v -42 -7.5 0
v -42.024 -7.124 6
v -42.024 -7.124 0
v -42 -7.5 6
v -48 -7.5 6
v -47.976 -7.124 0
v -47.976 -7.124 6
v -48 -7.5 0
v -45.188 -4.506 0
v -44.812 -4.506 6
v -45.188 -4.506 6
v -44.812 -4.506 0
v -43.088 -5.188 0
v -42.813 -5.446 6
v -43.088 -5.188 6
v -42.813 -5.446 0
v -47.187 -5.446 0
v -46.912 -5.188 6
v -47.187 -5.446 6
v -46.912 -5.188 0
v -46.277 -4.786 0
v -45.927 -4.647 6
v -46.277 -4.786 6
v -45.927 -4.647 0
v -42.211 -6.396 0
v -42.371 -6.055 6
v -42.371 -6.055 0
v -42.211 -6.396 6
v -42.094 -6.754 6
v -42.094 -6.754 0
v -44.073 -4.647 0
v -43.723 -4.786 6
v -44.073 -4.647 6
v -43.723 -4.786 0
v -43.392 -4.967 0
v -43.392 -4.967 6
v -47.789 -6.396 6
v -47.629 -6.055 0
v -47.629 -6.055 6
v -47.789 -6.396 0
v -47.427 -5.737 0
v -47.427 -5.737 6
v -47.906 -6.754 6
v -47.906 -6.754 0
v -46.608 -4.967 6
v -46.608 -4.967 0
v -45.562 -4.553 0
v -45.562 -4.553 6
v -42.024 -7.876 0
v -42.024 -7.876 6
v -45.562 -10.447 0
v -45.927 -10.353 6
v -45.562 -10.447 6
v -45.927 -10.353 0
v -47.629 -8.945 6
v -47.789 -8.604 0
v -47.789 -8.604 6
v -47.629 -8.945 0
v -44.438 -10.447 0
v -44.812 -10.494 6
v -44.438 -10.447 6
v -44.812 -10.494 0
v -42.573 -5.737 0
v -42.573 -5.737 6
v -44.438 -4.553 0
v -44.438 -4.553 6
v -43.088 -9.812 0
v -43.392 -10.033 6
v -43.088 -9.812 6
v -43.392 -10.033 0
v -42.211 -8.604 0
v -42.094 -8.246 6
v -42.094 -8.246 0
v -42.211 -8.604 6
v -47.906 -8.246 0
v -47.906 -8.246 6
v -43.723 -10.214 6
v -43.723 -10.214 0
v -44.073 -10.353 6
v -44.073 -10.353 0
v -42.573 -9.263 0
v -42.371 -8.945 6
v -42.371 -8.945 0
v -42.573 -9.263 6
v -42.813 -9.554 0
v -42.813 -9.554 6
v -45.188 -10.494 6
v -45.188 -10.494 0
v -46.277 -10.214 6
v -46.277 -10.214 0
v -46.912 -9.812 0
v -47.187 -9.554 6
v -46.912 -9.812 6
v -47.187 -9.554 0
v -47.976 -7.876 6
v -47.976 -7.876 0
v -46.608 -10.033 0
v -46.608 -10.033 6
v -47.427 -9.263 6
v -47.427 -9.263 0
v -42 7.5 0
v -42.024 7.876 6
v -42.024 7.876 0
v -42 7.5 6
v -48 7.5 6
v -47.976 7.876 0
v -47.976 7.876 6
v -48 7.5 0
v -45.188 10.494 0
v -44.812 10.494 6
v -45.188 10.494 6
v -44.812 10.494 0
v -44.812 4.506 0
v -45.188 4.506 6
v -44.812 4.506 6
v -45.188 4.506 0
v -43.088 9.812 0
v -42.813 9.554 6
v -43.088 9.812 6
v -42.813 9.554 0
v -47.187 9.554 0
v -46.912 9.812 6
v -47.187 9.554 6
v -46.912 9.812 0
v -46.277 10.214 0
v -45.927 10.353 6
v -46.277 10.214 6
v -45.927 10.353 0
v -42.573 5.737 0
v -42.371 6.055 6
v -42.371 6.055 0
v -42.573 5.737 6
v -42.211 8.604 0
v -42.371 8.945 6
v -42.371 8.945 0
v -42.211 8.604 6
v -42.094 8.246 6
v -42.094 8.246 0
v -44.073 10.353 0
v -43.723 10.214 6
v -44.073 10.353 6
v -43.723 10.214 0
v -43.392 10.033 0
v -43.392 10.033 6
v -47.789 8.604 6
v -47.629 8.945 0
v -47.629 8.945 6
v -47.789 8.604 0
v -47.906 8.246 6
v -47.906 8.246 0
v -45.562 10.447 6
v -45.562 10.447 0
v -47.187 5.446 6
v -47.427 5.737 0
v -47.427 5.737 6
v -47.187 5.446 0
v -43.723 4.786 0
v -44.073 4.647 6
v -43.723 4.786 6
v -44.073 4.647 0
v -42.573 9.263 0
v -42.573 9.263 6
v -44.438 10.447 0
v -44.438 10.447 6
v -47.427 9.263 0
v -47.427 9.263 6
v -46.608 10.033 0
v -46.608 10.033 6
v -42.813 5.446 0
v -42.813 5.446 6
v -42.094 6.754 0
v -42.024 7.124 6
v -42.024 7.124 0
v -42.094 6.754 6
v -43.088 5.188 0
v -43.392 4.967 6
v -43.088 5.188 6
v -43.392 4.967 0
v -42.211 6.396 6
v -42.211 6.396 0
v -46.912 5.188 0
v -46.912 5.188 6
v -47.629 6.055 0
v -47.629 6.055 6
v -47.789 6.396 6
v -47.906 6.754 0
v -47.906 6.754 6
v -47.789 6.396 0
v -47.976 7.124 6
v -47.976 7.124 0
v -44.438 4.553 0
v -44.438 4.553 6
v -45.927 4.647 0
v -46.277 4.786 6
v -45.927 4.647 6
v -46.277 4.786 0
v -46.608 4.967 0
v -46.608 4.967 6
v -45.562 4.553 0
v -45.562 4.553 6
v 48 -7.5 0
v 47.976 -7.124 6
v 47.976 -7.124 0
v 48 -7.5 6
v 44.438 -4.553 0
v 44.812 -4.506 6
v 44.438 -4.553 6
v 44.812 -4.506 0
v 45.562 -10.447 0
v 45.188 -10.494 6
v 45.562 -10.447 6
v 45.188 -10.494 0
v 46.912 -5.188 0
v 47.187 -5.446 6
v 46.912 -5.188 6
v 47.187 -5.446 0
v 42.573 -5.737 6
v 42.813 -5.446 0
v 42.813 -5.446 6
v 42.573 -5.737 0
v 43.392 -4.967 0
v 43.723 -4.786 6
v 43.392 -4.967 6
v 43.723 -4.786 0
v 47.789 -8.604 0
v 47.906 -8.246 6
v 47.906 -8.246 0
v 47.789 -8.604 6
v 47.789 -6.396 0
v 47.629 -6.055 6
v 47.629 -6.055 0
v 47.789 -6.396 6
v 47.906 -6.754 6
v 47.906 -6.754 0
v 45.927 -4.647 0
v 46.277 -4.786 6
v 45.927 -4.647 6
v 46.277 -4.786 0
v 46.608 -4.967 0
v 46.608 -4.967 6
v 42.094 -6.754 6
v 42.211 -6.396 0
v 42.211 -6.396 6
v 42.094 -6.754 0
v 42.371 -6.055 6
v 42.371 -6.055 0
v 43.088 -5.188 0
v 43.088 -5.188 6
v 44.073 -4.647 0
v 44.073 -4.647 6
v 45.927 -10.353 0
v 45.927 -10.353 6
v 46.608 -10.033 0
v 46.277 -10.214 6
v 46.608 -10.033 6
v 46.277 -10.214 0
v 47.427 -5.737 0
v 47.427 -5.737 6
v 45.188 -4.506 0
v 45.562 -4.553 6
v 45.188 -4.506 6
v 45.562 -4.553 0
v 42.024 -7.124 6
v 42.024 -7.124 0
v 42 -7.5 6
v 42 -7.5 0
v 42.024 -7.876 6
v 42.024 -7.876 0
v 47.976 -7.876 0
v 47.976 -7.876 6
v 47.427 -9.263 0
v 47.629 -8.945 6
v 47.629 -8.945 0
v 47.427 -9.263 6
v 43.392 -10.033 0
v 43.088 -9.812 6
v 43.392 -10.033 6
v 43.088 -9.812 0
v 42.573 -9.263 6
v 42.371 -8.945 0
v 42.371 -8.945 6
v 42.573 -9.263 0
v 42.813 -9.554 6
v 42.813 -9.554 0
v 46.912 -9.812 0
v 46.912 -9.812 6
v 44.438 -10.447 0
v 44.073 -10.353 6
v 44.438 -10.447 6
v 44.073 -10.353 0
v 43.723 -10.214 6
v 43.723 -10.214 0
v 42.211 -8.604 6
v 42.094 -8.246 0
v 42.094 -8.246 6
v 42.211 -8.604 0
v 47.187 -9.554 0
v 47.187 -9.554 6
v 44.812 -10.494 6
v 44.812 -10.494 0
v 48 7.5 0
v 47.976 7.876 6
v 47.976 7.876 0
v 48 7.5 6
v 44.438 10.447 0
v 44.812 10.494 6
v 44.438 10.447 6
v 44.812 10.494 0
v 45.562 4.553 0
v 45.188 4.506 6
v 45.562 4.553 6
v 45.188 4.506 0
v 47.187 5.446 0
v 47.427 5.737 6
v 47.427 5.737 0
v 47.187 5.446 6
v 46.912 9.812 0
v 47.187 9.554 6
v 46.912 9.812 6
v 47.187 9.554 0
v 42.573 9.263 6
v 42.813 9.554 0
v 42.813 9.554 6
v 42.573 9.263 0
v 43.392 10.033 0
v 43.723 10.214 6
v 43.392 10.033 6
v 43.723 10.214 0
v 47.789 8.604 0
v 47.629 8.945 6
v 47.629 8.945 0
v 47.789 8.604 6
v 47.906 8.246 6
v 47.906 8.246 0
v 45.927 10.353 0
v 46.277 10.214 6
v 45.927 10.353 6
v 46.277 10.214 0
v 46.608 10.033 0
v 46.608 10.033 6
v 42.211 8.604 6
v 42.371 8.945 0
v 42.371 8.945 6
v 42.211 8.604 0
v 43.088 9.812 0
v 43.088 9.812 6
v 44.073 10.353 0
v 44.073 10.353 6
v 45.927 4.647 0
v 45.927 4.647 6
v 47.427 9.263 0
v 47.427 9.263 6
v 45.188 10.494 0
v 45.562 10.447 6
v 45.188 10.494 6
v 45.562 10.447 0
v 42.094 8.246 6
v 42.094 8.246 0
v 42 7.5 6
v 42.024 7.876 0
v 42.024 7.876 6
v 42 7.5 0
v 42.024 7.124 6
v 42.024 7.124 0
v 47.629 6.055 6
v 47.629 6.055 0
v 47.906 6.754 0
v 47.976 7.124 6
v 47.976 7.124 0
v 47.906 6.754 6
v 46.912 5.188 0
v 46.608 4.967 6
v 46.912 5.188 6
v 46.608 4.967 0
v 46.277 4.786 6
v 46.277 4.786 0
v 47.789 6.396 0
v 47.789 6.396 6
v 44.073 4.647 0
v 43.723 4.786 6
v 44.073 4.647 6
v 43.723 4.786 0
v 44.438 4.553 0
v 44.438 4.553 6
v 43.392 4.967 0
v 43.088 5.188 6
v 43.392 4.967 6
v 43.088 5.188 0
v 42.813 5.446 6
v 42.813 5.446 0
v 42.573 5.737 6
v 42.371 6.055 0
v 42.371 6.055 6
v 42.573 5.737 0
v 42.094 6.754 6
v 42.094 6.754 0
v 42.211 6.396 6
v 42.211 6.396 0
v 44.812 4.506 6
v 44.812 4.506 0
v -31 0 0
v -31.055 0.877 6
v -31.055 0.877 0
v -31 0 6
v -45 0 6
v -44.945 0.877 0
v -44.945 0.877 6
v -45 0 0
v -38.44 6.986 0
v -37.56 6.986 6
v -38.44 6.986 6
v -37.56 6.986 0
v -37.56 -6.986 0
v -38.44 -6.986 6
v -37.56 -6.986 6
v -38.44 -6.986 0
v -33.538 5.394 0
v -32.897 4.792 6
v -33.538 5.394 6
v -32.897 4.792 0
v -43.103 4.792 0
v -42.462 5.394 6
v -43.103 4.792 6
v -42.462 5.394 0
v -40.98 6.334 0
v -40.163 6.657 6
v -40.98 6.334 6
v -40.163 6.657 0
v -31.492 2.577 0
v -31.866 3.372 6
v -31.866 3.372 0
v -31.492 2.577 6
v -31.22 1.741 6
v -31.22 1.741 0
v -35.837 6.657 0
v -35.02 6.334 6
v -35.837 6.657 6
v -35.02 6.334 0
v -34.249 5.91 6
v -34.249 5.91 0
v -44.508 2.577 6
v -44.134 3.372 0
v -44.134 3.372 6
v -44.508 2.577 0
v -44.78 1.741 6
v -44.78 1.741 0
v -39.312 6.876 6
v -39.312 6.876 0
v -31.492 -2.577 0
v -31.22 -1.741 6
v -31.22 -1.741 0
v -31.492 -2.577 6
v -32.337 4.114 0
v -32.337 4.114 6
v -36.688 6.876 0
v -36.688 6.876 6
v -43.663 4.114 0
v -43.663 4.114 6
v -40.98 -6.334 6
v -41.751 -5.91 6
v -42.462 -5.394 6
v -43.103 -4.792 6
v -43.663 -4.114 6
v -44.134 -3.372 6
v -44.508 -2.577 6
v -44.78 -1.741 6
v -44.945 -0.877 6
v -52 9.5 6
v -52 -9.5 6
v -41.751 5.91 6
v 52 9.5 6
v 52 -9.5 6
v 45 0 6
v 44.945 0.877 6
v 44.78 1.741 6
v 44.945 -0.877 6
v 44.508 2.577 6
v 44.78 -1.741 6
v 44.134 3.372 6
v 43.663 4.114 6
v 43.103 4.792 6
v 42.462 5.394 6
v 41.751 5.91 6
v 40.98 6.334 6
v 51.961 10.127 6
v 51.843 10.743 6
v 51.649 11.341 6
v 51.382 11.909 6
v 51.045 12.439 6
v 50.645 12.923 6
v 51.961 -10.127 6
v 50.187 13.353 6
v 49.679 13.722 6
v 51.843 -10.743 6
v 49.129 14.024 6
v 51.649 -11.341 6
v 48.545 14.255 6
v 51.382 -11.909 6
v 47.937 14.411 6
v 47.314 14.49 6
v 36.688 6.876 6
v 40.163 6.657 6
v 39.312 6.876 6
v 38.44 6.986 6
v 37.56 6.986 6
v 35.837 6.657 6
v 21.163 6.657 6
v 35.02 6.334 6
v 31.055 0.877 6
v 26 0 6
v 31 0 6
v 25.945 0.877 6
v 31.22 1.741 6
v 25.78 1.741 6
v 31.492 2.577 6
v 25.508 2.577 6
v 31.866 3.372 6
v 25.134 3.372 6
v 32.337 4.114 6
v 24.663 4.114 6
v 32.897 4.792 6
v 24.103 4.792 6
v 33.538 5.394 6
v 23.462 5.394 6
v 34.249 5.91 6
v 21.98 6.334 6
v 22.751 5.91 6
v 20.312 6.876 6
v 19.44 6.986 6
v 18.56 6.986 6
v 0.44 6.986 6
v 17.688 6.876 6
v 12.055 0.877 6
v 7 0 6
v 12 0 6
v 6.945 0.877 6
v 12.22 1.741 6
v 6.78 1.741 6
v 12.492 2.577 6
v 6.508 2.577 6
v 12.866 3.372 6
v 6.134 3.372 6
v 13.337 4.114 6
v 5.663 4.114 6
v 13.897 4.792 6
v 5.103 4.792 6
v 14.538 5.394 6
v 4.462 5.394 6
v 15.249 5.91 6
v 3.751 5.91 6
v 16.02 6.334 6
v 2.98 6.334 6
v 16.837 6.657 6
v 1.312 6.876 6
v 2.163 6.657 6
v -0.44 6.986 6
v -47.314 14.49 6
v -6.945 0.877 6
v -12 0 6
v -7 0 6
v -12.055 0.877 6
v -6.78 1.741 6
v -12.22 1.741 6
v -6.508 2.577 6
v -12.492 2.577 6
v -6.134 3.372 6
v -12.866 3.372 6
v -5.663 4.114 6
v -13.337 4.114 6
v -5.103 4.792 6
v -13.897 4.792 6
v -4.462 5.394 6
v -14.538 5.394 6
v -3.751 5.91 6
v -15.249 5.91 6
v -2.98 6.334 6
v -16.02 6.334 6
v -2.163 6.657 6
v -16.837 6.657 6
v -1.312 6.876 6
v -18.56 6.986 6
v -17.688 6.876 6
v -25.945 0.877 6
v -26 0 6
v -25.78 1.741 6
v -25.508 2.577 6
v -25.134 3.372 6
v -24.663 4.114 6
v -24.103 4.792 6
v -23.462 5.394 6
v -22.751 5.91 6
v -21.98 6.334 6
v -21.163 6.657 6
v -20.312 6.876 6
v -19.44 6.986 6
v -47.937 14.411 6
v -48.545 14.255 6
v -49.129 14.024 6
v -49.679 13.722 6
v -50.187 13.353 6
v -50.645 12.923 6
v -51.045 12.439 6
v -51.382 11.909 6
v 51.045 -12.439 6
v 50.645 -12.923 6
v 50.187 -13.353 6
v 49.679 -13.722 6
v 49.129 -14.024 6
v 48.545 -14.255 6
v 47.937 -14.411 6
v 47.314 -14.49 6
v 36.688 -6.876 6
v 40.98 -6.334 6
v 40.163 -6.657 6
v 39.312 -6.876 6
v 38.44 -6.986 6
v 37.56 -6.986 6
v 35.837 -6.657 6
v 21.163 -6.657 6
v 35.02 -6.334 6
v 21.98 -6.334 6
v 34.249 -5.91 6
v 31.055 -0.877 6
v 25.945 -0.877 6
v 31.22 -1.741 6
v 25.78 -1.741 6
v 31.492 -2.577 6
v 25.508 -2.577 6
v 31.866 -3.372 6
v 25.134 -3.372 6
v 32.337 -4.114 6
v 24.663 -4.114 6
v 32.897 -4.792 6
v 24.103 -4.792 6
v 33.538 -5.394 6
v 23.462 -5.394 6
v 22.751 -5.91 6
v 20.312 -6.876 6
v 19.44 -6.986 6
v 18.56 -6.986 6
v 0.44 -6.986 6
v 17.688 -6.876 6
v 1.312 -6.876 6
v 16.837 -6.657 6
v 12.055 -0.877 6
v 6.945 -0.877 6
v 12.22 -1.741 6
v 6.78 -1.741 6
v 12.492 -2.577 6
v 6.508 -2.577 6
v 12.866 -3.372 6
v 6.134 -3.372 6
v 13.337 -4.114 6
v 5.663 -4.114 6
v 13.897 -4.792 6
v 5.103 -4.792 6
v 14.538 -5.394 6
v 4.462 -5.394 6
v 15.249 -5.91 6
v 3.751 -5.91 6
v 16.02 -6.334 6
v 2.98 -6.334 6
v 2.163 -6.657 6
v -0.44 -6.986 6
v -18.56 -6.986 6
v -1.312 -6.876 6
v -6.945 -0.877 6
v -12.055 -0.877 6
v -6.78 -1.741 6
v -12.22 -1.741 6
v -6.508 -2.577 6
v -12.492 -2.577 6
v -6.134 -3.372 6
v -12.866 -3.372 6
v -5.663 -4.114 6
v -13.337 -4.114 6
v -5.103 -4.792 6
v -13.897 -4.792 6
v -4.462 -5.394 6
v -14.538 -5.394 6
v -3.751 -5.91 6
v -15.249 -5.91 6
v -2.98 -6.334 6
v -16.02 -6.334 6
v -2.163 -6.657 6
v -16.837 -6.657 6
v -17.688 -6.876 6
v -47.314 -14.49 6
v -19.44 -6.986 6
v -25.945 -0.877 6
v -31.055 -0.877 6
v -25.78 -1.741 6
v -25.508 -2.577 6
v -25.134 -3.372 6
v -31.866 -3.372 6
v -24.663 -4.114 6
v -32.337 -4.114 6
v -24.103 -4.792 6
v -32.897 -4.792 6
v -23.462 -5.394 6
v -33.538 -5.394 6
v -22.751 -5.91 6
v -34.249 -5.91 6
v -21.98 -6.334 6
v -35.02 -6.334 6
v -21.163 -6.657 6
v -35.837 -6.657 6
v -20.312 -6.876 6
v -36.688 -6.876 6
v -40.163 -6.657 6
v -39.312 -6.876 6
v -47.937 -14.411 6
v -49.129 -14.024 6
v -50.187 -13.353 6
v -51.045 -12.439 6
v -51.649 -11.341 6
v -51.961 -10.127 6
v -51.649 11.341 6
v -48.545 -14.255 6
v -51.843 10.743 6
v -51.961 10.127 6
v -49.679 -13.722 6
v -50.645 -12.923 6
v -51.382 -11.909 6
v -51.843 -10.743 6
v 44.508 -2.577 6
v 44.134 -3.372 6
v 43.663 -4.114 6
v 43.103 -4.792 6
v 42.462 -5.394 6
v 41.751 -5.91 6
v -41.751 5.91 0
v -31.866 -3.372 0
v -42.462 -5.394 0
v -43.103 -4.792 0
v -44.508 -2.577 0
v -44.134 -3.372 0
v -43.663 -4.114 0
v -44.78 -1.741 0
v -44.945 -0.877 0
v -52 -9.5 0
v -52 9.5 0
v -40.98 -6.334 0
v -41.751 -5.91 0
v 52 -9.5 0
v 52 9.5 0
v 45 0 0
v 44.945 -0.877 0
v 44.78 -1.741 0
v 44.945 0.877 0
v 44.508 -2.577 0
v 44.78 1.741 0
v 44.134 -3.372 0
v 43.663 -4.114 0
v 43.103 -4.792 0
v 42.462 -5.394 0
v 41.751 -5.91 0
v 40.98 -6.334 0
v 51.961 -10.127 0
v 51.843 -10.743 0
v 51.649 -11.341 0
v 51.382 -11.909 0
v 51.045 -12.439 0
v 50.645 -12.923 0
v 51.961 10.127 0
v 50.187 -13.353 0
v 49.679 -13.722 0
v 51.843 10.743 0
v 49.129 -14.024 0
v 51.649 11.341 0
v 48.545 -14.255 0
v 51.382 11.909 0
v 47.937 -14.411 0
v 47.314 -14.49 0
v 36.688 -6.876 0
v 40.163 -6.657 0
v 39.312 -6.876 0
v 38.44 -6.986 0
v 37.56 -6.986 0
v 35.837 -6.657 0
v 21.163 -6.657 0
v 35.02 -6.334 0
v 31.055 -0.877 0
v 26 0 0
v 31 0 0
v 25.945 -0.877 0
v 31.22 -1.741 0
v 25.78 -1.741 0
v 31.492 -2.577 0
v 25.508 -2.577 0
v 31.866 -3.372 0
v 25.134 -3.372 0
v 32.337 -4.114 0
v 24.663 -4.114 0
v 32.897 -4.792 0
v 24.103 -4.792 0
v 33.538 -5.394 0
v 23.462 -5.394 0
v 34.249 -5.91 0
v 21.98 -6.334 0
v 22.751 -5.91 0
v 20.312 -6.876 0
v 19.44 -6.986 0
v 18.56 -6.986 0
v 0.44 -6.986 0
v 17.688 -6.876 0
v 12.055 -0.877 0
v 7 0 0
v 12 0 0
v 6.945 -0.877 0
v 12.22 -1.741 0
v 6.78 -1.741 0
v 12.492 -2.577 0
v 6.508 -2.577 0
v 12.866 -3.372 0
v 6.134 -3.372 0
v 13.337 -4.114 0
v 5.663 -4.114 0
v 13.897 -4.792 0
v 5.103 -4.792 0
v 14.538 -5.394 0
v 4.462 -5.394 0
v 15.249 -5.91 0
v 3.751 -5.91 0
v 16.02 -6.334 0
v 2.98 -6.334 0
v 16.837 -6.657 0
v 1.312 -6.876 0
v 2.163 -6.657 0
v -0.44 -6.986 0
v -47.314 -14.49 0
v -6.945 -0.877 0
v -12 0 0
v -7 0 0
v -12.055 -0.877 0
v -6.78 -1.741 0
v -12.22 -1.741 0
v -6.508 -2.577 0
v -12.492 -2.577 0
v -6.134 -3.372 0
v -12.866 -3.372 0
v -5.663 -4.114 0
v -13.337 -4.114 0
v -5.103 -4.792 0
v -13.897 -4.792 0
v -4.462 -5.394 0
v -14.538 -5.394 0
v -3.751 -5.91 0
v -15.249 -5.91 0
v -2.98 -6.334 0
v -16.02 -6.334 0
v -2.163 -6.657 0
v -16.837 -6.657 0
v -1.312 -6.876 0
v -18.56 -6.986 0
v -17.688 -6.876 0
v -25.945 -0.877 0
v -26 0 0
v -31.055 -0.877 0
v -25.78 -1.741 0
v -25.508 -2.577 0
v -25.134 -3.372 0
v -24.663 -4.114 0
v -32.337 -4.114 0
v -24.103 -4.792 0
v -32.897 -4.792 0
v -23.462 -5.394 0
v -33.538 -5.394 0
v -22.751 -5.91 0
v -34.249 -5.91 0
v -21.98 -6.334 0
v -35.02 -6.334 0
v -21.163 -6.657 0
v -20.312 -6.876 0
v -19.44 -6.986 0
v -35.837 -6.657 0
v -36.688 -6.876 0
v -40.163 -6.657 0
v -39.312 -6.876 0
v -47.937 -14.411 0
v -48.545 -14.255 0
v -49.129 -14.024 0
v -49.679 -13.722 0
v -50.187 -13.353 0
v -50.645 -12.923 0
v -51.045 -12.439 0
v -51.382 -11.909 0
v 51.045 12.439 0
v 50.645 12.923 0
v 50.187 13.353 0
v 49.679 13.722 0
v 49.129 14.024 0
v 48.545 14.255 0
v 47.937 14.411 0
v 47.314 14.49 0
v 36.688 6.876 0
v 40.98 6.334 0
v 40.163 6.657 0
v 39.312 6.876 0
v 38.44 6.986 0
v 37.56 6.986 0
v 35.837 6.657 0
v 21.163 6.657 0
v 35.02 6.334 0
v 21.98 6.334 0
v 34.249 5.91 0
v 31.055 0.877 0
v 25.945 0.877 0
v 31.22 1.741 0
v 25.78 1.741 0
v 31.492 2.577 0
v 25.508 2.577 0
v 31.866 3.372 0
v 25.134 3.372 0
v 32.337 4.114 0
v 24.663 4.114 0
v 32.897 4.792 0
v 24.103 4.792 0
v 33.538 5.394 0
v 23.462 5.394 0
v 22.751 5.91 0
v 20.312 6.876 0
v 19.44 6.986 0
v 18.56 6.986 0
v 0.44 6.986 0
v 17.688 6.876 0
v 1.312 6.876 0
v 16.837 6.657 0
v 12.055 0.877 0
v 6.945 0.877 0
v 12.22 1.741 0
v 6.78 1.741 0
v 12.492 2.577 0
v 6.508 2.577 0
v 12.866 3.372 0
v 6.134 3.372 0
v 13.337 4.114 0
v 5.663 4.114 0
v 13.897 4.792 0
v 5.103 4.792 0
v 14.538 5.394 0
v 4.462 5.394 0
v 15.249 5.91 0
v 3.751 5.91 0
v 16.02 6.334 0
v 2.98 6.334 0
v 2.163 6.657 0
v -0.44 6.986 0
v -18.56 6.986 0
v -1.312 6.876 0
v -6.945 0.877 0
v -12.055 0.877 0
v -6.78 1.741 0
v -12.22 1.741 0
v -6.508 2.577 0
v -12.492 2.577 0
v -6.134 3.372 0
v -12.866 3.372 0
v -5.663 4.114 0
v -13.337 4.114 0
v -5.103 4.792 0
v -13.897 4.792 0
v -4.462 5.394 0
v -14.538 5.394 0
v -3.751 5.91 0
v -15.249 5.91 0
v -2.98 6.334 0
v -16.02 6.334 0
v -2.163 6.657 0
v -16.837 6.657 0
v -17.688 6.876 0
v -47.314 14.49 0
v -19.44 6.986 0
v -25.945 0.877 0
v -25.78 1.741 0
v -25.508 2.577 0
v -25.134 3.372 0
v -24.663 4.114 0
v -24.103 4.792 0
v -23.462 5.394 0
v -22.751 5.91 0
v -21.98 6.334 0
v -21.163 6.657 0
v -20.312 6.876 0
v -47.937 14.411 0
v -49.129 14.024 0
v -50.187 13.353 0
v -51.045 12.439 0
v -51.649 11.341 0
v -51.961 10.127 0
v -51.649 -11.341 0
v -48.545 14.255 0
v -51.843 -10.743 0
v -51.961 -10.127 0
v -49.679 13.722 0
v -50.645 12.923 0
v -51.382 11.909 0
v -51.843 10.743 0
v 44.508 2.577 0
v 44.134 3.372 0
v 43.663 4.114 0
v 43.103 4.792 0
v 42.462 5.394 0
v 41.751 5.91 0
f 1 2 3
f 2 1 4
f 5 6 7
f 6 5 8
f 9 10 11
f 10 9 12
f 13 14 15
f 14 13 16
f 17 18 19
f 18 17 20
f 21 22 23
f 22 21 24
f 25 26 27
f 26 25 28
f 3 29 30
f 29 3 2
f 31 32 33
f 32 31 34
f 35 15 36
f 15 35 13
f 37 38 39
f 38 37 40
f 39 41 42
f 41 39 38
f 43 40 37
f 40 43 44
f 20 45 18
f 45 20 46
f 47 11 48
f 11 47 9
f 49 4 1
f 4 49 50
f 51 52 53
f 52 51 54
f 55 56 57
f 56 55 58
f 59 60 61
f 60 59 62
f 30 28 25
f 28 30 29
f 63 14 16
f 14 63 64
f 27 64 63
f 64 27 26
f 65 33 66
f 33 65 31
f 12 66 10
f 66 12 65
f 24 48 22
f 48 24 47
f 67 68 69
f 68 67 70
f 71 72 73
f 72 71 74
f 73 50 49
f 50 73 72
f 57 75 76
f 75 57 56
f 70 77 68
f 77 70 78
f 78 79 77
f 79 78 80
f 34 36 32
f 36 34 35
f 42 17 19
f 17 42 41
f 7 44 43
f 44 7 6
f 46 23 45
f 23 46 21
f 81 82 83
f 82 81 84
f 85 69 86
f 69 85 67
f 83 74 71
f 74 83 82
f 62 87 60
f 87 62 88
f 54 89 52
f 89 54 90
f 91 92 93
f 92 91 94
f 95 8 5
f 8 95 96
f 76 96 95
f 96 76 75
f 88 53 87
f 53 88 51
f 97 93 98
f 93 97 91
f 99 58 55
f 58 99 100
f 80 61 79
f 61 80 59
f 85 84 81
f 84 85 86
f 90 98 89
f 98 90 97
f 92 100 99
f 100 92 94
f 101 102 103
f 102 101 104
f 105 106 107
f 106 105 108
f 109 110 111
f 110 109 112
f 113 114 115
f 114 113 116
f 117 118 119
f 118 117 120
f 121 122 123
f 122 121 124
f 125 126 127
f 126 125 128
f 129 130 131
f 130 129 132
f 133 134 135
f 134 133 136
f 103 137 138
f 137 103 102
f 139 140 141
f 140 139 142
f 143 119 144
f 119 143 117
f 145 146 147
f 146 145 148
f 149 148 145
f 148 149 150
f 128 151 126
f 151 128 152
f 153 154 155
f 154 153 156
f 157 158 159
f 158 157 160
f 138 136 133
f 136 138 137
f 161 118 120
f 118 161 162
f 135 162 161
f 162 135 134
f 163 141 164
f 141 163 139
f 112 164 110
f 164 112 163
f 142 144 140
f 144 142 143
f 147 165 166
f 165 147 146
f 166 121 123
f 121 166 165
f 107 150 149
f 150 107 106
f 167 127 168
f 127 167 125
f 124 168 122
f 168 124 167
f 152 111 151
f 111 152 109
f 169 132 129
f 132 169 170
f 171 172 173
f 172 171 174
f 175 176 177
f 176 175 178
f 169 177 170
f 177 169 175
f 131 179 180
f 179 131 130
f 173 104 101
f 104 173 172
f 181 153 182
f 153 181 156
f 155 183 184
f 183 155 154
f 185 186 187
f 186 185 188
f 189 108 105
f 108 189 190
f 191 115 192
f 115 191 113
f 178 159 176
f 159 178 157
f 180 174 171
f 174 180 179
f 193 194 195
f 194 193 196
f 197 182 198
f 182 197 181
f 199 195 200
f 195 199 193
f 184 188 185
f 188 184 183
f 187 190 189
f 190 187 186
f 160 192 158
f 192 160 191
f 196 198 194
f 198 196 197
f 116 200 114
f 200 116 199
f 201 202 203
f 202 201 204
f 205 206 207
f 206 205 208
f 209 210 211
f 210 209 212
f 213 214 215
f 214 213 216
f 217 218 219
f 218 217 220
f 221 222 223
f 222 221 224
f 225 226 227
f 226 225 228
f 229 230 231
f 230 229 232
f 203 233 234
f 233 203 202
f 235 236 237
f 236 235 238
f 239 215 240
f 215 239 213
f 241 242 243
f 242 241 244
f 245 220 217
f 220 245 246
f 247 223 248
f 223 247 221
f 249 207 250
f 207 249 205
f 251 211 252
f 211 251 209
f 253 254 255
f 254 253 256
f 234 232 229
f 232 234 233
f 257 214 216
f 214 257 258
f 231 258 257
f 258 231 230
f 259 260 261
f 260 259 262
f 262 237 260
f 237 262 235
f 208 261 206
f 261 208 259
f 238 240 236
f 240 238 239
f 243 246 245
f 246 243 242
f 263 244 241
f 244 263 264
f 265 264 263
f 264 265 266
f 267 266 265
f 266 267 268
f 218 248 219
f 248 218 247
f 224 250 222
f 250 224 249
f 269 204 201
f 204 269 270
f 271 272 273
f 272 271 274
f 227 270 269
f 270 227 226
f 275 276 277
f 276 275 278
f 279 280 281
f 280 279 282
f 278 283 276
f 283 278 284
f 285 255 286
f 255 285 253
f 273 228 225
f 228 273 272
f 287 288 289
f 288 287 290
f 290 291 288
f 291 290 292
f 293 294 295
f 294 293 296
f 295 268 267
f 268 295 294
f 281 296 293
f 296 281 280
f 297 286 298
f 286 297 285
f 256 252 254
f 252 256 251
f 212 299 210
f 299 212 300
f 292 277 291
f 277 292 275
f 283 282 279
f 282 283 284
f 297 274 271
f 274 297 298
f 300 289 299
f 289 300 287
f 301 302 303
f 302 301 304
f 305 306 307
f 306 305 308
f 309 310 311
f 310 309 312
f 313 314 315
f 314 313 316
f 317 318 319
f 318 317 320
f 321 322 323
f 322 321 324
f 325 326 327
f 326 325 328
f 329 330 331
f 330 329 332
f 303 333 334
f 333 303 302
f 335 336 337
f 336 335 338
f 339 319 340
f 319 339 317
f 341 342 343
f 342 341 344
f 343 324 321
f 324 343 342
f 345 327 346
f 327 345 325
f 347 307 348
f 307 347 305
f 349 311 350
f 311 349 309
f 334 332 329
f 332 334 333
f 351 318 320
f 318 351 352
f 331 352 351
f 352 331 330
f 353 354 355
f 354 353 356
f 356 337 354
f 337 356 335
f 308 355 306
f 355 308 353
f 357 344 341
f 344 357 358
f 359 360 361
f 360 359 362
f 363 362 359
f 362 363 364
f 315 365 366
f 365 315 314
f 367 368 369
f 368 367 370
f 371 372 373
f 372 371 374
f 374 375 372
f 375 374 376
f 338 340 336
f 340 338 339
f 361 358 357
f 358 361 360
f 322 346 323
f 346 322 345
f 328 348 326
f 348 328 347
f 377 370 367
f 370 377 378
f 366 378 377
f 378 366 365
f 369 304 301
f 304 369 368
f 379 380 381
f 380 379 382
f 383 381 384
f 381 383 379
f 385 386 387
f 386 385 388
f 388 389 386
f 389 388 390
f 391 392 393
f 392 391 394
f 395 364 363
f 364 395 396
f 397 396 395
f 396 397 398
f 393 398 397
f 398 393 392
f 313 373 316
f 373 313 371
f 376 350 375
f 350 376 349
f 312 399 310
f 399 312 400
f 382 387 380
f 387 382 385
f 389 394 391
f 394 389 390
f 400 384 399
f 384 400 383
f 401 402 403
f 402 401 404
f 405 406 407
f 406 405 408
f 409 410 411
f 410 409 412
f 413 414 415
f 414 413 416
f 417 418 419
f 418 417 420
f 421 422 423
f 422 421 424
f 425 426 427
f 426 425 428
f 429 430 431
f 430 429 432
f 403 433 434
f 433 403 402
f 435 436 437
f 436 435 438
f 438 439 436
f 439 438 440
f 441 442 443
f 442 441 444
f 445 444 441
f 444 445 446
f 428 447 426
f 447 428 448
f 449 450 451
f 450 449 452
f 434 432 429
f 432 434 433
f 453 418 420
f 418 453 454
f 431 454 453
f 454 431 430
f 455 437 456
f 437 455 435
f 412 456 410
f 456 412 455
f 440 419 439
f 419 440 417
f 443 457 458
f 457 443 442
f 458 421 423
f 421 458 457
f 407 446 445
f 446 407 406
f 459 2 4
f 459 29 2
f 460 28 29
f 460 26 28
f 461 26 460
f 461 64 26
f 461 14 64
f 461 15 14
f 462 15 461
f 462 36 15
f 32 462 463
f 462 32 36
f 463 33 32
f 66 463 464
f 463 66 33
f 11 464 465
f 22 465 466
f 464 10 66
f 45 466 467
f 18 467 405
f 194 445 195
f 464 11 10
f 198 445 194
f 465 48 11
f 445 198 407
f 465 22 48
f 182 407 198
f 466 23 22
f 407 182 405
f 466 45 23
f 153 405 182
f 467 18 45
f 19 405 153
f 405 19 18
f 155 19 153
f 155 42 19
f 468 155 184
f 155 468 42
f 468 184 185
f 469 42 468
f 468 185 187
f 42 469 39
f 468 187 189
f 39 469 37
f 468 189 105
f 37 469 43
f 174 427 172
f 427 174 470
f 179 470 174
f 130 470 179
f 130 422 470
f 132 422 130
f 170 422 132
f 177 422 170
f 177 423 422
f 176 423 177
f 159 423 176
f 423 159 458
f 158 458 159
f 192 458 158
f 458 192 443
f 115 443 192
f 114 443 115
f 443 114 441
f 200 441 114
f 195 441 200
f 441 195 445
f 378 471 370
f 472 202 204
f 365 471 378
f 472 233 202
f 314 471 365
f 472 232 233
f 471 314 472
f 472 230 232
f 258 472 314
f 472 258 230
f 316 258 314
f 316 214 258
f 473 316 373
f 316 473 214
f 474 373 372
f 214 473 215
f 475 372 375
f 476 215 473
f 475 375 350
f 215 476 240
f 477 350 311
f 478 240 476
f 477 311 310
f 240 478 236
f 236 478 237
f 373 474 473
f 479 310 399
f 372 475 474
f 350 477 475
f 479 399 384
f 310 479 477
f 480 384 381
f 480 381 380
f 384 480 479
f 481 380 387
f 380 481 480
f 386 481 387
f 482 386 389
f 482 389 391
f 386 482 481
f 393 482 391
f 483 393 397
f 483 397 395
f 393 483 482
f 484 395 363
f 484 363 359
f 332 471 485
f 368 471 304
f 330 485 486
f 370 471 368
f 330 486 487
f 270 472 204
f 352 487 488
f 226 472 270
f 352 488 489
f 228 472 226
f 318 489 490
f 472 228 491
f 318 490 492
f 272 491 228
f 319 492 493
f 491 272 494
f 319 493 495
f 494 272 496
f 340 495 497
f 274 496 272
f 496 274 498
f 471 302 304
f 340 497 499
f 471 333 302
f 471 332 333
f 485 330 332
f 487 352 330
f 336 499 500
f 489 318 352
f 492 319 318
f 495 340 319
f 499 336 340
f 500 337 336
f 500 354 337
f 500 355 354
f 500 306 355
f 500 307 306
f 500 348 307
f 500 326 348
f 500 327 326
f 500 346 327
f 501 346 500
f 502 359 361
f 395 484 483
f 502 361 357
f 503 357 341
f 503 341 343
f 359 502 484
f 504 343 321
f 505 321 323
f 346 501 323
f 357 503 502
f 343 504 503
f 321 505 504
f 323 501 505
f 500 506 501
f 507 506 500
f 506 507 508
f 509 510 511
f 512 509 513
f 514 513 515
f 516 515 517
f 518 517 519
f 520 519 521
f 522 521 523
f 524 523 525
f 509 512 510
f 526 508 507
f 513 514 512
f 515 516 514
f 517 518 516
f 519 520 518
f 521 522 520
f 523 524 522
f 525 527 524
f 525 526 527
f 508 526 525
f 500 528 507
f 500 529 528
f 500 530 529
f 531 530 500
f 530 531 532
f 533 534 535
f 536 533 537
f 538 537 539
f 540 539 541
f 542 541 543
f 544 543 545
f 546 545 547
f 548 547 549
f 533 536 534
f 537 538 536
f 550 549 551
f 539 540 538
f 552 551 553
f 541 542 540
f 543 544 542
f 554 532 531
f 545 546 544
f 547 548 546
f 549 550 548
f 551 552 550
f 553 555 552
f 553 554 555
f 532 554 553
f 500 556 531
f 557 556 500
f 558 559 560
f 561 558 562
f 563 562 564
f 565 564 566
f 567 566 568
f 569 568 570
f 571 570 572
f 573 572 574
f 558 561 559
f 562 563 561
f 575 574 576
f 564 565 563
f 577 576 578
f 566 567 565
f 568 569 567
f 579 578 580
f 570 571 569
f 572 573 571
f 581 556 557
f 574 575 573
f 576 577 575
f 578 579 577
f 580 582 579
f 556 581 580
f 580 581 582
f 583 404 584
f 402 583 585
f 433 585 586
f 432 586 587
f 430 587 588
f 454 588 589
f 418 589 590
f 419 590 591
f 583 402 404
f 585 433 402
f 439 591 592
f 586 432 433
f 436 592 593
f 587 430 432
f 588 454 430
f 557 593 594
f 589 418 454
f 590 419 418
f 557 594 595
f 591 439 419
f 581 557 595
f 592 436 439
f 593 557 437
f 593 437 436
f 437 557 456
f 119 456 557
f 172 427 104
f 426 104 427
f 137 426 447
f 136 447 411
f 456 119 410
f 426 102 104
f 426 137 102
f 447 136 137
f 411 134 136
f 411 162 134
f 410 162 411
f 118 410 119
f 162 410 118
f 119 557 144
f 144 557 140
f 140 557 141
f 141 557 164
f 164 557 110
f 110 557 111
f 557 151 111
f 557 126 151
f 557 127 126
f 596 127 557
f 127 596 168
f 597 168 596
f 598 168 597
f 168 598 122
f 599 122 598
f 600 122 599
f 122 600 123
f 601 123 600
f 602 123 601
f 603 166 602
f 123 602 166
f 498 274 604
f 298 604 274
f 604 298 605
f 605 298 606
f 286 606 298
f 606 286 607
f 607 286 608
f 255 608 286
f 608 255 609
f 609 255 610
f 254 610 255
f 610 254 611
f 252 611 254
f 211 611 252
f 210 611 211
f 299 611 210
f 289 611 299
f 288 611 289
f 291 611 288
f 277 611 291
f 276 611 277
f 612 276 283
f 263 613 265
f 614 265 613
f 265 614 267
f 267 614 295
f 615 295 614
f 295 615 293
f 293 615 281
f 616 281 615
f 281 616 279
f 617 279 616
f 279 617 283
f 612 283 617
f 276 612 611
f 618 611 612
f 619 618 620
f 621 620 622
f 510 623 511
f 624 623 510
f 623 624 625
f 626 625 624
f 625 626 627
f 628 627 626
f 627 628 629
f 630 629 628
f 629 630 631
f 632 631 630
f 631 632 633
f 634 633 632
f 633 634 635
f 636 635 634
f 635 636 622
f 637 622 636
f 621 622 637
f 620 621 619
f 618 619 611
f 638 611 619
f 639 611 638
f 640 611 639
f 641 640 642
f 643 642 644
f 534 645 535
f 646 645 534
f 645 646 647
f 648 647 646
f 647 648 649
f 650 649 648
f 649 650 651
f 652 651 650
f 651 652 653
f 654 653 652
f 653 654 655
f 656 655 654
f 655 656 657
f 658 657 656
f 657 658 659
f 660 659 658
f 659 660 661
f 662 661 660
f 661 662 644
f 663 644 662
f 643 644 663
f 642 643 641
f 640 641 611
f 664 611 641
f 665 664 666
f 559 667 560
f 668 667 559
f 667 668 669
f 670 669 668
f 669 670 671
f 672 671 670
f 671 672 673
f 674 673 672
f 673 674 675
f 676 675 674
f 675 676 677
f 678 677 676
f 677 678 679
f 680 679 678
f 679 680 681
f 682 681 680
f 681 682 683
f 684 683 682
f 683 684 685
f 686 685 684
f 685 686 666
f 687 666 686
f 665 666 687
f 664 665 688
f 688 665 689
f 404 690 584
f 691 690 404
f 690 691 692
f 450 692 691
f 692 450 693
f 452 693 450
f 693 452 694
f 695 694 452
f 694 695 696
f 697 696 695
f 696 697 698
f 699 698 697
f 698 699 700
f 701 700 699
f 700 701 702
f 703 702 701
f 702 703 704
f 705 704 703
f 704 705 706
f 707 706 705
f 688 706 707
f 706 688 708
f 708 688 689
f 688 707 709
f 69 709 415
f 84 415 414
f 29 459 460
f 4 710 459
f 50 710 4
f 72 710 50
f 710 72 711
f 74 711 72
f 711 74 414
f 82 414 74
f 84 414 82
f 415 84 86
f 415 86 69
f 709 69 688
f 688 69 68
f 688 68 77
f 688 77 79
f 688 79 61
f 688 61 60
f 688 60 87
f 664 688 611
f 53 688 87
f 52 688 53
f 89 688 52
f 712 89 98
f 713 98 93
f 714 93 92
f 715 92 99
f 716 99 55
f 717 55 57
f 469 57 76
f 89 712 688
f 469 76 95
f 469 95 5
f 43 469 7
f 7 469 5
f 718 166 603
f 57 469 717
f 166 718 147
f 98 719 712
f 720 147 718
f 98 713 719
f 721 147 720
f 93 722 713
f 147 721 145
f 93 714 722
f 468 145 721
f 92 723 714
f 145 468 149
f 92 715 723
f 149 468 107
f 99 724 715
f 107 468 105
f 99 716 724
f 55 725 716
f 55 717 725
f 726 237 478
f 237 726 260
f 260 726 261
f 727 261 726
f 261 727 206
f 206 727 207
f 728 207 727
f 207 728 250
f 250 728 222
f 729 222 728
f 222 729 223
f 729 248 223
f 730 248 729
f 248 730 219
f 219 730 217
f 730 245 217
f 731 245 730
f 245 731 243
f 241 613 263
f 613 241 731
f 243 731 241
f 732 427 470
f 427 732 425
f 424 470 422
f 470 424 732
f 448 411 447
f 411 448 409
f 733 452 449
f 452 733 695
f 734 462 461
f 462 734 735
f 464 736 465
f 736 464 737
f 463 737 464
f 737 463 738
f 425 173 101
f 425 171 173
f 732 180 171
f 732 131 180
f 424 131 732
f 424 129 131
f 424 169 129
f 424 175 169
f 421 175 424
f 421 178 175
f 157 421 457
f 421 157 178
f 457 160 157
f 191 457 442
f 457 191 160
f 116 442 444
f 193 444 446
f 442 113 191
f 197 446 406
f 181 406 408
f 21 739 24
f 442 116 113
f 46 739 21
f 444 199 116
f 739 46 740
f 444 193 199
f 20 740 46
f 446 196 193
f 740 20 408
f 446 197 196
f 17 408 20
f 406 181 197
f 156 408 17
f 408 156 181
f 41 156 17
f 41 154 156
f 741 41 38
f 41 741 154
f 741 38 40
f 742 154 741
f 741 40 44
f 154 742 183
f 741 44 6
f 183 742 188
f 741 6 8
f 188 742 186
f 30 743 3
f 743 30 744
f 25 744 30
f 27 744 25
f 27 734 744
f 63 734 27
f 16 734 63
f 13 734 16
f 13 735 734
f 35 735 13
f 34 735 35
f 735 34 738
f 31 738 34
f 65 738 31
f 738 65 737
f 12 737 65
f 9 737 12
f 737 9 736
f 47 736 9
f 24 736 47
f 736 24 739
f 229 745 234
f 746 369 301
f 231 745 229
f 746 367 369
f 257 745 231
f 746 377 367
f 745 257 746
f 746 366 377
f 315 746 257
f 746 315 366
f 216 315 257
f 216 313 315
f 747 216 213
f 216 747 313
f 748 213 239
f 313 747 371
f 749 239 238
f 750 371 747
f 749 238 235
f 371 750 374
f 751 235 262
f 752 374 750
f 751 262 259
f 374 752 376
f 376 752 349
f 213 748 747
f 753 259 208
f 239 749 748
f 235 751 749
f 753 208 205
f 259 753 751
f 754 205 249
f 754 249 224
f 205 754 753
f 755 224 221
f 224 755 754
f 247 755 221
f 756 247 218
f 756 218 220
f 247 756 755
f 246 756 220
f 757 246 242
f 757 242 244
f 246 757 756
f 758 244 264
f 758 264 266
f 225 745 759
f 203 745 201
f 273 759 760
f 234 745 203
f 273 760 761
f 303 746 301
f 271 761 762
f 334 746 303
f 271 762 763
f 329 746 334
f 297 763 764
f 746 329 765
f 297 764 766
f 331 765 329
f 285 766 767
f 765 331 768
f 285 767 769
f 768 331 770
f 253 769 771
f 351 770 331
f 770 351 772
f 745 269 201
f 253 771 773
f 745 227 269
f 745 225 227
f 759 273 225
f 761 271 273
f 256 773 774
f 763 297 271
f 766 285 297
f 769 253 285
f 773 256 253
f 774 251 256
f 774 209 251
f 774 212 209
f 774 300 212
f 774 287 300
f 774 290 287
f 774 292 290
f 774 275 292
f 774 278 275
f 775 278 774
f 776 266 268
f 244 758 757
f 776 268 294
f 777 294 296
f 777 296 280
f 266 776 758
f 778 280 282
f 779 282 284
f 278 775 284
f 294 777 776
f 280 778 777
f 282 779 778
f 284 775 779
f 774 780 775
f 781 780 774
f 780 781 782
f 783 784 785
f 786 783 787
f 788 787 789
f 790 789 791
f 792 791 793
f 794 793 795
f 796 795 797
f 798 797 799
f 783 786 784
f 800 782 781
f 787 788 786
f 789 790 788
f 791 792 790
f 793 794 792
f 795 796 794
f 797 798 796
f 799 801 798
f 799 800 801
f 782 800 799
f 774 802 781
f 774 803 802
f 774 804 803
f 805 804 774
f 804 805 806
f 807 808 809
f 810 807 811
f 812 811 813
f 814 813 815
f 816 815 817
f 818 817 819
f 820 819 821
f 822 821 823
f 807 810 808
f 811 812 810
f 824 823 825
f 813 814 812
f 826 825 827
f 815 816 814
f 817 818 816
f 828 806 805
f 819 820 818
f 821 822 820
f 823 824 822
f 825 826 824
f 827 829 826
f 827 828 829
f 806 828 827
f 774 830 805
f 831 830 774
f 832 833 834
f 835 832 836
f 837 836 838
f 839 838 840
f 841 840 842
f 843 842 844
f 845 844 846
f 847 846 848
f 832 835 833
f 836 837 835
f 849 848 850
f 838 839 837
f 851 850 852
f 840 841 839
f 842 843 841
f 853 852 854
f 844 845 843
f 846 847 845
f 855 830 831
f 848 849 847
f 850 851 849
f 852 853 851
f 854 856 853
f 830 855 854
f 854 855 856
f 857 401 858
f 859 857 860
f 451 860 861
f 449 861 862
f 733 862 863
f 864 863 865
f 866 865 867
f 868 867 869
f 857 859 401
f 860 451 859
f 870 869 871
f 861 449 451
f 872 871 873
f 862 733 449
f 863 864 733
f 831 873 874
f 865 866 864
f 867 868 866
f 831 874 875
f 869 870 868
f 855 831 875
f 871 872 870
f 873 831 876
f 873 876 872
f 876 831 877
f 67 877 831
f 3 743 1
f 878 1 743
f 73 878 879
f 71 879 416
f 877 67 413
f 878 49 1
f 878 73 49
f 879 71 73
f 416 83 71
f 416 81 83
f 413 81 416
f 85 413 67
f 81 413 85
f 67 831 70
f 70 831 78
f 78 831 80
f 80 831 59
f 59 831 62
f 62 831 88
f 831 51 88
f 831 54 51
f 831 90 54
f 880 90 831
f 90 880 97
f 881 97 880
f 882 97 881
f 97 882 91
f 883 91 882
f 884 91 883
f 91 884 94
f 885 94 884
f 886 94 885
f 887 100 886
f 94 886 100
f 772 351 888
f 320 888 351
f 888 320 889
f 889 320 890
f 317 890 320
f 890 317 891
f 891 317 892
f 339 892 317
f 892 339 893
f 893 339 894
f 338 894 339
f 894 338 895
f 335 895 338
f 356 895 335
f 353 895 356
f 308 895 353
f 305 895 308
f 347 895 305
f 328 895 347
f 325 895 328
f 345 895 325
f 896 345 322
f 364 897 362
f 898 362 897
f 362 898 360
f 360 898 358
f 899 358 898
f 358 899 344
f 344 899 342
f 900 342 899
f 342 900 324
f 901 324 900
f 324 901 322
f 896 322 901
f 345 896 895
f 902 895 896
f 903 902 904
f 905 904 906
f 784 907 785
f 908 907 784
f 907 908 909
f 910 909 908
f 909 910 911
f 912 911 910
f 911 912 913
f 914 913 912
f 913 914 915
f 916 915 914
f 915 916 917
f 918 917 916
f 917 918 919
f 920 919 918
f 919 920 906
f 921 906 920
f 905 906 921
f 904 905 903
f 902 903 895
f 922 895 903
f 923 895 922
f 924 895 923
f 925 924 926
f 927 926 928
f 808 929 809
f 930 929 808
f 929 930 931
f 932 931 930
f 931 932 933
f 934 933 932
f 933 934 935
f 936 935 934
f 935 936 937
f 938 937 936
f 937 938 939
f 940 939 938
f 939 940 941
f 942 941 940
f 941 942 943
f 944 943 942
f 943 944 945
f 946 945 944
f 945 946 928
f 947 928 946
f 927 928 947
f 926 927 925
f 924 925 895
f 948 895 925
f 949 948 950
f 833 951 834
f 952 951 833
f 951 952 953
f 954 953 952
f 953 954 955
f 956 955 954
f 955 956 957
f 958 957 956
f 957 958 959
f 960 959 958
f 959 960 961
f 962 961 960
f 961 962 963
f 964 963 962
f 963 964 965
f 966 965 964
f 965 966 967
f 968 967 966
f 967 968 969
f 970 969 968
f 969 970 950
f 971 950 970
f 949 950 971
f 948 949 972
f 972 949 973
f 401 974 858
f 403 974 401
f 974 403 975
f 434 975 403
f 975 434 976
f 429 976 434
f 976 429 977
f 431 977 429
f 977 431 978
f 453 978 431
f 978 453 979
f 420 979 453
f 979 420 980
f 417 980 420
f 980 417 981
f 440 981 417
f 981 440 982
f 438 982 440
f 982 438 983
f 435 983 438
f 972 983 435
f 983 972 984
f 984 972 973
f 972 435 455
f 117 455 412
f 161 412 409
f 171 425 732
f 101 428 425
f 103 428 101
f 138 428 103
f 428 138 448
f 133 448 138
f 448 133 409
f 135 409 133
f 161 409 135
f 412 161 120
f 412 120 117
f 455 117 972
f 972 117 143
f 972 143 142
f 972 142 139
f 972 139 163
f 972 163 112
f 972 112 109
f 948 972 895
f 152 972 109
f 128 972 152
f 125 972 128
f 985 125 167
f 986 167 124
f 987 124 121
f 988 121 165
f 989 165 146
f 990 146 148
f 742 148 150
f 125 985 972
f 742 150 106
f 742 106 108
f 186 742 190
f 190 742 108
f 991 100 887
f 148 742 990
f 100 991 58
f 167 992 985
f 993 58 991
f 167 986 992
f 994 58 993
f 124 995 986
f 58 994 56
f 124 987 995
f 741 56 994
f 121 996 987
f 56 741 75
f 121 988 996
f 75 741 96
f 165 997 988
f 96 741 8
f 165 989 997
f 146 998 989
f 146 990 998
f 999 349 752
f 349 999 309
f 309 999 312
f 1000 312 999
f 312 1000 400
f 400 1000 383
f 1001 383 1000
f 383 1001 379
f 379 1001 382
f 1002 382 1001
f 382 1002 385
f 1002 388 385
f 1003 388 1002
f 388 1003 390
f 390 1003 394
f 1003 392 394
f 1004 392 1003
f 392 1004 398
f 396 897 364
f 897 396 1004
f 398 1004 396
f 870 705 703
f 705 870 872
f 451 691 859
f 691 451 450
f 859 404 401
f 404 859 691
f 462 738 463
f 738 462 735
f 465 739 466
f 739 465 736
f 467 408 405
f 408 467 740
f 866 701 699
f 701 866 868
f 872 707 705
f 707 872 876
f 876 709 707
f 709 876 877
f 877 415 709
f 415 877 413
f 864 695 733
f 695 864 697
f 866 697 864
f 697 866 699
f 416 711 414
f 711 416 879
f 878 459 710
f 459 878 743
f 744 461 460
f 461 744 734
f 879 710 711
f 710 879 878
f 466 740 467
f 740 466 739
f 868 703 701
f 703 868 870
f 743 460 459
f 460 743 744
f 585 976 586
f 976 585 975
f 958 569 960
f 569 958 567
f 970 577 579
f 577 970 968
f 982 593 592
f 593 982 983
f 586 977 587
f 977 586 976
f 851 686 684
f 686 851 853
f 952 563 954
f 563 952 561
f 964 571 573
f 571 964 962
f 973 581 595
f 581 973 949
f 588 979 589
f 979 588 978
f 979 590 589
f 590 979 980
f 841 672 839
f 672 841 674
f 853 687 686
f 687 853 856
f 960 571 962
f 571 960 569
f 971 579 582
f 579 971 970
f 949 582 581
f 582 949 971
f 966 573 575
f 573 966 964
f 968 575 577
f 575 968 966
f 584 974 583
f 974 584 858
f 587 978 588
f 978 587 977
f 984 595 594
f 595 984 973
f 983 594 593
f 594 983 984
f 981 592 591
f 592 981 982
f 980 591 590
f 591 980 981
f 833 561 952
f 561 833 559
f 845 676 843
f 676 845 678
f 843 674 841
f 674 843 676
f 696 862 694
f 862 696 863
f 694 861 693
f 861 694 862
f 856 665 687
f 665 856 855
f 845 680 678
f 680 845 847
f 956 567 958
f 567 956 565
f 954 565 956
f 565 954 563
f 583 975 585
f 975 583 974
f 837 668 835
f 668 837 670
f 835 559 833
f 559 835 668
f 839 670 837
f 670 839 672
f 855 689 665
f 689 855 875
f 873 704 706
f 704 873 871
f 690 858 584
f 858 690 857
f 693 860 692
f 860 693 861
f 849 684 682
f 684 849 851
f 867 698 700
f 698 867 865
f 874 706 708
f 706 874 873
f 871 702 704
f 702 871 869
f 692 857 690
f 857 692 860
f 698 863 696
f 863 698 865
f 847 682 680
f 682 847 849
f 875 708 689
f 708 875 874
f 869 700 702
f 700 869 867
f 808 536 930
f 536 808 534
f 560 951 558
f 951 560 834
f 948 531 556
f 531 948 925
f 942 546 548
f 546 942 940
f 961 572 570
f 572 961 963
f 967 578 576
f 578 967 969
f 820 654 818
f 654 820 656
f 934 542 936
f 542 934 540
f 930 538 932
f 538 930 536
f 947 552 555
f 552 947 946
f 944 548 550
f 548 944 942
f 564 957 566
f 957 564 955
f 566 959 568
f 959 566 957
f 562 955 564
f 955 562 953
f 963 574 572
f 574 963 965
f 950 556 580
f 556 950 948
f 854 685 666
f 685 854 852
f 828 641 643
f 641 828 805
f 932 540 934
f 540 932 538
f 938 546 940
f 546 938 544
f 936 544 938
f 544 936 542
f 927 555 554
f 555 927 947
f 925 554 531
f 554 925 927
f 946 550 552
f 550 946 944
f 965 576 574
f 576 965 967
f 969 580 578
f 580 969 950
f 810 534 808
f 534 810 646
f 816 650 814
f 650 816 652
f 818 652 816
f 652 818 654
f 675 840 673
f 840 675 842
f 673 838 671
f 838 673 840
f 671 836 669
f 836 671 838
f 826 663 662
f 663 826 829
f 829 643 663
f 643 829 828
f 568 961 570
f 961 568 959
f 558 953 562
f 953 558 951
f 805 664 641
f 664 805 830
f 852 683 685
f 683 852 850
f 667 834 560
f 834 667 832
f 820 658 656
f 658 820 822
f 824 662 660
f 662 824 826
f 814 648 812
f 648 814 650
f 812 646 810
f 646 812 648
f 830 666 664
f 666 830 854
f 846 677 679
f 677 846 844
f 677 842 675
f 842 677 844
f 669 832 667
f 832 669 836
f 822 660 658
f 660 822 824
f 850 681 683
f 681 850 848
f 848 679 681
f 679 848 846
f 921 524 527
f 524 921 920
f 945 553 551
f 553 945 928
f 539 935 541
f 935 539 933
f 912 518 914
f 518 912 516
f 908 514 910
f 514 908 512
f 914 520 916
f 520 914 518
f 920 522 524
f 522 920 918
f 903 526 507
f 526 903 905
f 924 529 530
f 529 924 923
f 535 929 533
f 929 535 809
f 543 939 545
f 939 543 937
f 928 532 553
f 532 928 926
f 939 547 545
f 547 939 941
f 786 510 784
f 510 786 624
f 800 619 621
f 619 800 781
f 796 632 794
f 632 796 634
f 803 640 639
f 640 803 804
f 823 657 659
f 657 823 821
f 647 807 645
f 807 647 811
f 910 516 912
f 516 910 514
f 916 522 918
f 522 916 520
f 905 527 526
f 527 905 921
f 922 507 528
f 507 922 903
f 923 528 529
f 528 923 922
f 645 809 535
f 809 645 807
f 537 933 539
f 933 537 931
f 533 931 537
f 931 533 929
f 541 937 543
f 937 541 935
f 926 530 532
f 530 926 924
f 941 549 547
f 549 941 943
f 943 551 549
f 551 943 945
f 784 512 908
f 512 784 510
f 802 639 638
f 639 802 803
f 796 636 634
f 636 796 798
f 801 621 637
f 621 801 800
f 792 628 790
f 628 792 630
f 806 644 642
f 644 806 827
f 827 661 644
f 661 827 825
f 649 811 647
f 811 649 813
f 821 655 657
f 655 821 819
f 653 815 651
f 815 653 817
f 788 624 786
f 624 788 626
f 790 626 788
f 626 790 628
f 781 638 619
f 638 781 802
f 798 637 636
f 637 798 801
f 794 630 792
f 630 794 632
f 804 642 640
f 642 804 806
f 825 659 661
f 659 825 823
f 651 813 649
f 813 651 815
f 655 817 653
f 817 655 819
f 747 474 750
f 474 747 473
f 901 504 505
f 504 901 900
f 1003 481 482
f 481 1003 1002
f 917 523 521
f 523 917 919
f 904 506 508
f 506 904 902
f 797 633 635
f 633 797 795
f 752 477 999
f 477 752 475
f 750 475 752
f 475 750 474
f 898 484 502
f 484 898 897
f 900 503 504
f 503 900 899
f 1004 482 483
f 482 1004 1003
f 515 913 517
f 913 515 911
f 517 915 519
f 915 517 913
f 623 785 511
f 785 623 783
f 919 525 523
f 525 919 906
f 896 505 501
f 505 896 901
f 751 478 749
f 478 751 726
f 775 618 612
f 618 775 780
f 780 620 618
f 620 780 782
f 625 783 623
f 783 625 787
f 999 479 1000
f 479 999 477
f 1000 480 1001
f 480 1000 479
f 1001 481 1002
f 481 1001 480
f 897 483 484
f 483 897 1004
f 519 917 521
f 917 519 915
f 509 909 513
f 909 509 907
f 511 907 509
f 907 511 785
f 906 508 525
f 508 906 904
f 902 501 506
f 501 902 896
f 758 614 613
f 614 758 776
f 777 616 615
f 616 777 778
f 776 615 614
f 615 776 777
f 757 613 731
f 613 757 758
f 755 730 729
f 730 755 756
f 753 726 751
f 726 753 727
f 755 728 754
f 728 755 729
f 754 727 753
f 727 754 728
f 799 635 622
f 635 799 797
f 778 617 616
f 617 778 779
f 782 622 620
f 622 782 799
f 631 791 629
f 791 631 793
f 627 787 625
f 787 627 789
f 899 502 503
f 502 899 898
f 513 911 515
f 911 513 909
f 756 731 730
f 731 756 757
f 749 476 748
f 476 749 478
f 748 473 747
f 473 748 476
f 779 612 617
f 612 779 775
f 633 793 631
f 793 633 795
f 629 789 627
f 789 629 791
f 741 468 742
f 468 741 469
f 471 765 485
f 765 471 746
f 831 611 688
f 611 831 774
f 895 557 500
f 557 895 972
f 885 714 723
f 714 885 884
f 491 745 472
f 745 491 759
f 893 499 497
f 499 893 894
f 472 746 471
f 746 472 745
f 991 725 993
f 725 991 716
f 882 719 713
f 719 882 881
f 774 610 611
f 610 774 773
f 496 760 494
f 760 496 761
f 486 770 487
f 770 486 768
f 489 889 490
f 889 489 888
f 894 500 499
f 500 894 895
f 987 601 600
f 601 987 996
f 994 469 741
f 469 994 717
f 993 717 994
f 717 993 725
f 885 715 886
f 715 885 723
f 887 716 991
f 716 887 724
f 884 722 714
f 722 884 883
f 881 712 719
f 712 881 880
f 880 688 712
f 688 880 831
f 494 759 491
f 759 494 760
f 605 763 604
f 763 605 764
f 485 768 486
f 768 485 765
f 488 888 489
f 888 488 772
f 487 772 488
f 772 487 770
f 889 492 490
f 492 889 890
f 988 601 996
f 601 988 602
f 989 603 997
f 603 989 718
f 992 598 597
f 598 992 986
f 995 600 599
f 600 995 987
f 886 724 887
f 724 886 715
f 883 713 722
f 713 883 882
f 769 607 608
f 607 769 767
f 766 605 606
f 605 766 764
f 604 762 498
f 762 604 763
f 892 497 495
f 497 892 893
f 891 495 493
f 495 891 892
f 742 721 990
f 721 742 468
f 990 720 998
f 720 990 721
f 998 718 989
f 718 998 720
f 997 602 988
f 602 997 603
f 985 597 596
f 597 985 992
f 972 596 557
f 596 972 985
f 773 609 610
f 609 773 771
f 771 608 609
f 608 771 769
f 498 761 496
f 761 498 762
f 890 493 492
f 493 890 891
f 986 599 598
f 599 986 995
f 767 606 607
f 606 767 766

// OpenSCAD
$fn = 50;


difference() {
	union() {
		hull() {
			translate(v = [-47.0000000000, 9.5000000000, 0]) {
				cylinder(h = 6, r = 5);
			}
			translate(v = [47.0000000000, 9.5000000000, 0]) {
				cylinder(h = 6, r = 5);
			}
			translate(v = [-47.0000000000, -9.5000000000, 0]) {
				cylinder(h = 6, r = 5);
			}
			translate(v = [47.0000000000, -9.5000000000, 0]) {
				cylinder(h = 6, r = 5);
			}
		}
	}
	union() {
		#translate(v = [-45.0000000000, -7.5000000000, -100.0000000000]) {
			cylinder(h = 200, r = 3.0000000000);
		}
		#translate(v = [-45.0000000000, 7.5000000000, -100.0000000000]) {
			cylinder(h = 200, r = 3.0000000000);
		}
		#translate(v = [45.0000000000, -7.5000000000, -100.0000000000]) {
			cylinder(h = 200, r = 3.0000000000);
		}
		#translate(v = [45.0000000000, 7.5000000000, -100.0000000000]) {
			cylinder(h = 200, r = 3.0000000000);
		}
		#translate(v = [-38.0000000000, 0, 0]) {
			cylinder(h = 6, r = 7.0000000000);
		}
		#translate(v = [-19.0000000000, 0, 0]) {
			cylinder(h = 6, r = 7.0000000000);
		}
		#cylinder(h = 6, r = 7.0000000000);
		#translate(v = [19.0000000000, 0, 0]) {
			cylinder(h = 6, r = 7.0000000000);
		}
		#translate(v = [38.0000000000, 0, 0]) {
			cylinder(h = 6, r = 7.0000000000);
		}
	}
}
